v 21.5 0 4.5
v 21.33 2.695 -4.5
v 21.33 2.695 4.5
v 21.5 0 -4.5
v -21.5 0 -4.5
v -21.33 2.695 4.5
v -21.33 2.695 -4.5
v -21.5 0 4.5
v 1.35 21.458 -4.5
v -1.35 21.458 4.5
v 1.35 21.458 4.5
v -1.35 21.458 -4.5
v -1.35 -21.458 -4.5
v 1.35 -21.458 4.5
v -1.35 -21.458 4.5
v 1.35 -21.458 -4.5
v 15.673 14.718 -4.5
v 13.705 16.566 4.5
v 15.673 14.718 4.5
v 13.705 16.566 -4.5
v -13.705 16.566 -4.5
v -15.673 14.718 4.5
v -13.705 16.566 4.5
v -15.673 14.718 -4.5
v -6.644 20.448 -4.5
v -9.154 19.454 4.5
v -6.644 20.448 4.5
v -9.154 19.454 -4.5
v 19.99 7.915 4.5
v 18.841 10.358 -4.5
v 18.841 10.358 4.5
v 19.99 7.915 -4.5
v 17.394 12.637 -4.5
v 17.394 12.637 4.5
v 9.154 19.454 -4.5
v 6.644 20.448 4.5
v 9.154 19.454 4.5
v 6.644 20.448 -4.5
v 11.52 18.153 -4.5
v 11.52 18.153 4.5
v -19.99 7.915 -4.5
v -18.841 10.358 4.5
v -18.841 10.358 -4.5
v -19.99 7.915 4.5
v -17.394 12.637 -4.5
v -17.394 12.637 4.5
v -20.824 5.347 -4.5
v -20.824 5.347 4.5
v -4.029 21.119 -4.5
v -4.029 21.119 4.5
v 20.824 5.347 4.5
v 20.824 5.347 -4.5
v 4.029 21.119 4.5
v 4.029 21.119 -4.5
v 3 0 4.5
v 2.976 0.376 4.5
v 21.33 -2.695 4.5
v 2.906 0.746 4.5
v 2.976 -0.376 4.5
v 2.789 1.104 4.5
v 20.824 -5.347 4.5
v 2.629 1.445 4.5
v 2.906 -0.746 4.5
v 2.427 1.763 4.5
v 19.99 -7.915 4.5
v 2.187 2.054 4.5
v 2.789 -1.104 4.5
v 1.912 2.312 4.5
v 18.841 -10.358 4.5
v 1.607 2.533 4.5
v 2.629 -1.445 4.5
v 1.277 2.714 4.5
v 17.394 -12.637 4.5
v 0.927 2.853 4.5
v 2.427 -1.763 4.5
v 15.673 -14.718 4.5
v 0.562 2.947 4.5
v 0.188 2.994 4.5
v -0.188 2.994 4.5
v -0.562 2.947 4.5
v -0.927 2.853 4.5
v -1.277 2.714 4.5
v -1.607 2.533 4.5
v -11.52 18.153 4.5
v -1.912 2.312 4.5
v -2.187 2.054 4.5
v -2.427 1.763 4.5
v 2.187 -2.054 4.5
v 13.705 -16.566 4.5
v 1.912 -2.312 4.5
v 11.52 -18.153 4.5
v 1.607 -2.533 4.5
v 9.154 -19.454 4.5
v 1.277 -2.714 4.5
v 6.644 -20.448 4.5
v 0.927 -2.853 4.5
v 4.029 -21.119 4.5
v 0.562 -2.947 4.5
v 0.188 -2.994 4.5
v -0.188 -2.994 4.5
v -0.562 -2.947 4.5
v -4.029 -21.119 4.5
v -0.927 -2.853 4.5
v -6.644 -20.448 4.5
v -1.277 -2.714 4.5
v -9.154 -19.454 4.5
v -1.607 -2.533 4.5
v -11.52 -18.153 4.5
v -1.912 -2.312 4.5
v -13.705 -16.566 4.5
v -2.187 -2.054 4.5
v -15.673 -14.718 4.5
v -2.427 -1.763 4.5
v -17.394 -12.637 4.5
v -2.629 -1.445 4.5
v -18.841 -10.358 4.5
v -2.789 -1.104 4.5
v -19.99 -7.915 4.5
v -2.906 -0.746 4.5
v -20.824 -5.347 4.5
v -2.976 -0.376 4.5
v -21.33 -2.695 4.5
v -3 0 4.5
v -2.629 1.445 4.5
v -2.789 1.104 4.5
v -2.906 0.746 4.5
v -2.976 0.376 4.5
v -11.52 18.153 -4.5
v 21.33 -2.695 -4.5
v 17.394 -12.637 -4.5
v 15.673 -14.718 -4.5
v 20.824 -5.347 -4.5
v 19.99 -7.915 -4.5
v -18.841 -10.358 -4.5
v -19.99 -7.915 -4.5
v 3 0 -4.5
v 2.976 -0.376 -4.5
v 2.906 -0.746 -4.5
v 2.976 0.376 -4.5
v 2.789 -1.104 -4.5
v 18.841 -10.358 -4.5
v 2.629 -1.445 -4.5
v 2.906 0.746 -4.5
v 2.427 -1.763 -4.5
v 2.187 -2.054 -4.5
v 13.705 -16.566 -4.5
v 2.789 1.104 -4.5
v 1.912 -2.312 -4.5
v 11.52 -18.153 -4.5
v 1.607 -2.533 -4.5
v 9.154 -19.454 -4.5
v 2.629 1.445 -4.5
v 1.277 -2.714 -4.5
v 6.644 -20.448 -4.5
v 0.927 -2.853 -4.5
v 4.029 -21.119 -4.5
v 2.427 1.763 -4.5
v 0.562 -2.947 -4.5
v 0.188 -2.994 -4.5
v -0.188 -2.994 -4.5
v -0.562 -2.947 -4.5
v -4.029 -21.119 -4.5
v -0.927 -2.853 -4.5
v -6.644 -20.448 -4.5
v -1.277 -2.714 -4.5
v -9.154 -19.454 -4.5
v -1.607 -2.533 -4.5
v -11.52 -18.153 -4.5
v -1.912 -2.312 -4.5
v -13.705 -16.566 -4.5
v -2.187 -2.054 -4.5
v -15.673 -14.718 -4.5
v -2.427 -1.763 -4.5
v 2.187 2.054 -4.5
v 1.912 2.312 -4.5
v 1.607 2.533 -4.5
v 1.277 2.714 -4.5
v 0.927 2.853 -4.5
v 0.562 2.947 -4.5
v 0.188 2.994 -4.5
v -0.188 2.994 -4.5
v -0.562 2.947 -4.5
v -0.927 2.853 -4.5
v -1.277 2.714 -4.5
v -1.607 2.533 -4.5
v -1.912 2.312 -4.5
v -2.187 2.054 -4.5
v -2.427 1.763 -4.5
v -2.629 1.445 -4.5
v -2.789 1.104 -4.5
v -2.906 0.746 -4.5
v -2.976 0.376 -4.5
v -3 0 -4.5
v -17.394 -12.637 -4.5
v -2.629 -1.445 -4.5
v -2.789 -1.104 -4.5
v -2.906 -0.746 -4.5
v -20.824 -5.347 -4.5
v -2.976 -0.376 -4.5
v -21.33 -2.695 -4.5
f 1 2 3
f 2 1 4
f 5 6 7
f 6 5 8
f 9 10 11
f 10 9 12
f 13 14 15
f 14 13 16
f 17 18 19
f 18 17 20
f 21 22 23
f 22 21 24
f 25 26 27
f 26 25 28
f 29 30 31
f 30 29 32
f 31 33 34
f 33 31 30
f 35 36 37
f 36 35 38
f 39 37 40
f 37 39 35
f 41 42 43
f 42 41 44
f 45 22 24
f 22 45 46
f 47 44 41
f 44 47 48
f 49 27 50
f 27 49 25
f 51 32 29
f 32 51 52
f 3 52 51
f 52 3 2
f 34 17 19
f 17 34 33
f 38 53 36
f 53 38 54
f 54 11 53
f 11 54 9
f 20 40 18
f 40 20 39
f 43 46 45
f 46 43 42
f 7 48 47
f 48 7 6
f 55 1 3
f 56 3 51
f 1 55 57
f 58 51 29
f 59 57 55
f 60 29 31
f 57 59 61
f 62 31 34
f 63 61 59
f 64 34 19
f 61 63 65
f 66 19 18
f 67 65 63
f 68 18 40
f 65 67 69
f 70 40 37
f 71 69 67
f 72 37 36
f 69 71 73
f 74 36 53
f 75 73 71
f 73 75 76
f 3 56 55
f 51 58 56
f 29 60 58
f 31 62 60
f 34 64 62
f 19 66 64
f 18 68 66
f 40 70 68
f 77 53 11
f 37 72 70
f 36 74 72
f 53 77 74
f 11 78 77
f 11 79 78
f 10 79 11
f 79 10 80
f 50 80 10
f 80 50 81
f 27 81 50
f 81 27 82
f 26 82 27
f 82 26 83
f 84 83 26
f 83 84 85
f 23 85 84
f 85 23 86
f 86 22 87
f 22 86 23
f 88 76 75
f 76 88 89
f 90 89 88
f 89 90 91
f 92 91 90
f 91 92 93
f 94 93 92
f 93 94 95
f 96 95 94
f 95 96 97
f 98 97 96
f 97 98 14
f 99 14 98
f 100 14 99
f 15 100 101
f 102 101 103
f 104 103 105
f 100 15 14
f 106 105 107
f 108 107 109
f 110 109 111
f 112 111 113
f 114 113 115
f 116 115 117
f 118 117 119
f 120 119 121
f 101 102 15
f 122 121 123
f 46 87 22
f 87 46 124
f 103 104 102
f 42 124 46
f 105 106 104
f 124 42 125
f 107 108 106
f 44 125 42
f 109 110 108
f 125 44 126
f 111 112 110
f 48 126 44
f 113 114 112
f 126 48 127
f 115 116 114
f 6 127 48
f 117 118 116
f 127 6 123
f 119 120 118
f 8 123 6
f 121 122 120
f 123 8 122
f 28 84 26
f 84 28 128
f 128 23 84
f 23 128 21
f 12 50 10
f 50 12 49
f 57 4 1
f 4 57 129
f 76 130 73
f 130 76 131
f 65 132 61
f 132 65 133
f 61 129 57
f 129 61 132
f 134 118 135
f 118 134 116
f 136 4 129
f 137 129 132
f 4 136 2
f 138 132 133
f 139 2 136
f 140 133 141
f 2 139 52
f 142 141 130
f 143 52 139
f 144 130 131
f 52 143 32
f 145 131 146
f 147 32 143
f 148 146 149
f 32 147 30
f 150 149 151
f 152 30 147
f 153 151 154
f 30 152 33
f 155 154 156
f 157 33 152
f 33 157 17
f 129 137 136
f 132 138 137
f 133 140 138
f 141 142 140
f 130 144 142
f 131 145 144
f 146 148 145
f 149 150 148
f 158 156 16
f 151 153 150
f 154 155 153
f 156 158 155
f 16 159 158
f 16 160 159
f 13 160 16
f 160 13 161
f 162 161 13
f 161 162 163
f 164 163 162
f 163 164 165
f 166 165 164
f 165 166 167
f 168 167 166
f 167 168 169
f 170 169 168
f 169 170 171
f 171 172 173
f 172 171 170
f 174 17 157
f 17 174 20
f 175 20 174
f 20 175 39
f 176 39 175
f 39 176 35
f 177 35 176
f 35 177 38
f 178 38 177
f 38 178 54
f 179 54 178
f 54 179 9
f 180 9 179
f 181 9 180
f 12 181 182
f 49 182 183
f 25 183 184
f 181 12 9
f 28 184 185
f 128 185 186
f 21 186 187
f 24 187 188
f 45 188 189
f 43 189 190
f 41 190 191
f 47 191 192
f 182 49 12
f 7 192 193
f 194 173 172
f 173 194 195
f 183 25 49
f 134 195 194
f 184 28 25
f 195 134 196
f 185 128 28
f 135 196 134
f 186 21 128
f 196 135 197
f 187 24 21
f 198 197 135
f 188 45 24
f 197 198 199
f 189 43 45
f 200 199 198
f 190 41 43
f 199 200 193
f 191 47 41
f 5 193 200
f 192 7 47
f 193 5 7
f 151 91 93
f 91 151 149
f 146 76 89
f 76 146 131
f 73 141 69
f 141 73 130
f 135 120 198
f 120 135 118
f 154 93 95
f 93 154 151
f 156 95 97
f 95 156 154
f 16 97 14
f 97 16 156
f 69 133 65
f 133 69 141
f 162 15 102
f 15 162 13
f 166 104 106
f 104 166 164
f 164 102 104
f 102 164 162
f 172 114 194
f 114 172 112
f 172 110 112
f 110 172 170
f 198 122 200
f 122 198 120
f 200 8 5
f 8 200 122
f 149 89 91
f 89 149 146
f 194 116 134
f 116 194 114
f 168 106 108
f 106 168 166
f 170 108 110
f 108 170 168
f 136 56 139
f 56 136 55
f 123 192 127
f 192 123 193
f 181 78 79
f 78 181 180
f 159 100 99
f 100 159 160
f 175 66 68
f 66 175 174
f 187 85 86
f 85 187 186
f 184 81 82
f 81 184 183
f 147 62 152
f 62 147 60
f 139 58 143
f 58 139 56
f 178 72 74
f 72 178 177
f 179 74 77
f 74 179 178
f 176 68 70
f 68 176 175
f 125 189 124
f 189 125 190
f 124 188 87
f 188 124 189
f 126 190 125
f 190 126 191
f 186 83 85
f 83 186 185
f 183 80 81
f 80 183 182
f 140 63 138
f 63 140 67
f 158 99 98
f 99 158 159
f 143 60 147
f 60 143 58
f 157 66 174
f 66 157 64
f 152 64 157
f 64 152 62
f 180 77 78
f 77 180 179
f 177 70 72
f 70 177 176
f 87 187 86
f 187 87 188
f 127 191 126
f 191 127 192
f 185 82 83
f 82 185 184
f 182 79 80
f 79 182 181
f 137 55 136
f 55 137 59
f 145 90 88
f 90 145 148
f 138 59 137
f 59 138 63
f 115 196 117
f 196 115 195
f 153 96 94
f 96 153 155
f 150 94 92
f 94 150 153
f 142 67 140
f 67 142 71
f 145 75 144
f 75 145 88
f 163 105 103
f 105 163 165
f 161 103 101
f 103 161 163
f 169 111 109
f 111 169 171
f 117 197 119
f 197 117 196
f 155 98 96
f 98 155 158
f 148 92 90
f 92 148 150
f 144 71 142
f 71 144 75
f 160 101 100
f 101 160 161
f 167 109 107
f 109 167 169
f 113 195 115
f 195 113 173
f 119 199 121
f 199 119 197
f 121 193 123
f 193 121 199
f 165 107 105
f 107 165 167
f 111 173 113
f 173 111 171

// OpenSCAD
$fn = 50;


difference() {
	union() {
		translate(v = [0, 0, -4.5000000000]) {
			cylinder(h = 9, r = 21.5000000000);
		}
	}
	union() {
		translate(v = [0, 0, -100.0000000000]) {
			cylinder(h = 200, r = 3);
		}
	}
}
